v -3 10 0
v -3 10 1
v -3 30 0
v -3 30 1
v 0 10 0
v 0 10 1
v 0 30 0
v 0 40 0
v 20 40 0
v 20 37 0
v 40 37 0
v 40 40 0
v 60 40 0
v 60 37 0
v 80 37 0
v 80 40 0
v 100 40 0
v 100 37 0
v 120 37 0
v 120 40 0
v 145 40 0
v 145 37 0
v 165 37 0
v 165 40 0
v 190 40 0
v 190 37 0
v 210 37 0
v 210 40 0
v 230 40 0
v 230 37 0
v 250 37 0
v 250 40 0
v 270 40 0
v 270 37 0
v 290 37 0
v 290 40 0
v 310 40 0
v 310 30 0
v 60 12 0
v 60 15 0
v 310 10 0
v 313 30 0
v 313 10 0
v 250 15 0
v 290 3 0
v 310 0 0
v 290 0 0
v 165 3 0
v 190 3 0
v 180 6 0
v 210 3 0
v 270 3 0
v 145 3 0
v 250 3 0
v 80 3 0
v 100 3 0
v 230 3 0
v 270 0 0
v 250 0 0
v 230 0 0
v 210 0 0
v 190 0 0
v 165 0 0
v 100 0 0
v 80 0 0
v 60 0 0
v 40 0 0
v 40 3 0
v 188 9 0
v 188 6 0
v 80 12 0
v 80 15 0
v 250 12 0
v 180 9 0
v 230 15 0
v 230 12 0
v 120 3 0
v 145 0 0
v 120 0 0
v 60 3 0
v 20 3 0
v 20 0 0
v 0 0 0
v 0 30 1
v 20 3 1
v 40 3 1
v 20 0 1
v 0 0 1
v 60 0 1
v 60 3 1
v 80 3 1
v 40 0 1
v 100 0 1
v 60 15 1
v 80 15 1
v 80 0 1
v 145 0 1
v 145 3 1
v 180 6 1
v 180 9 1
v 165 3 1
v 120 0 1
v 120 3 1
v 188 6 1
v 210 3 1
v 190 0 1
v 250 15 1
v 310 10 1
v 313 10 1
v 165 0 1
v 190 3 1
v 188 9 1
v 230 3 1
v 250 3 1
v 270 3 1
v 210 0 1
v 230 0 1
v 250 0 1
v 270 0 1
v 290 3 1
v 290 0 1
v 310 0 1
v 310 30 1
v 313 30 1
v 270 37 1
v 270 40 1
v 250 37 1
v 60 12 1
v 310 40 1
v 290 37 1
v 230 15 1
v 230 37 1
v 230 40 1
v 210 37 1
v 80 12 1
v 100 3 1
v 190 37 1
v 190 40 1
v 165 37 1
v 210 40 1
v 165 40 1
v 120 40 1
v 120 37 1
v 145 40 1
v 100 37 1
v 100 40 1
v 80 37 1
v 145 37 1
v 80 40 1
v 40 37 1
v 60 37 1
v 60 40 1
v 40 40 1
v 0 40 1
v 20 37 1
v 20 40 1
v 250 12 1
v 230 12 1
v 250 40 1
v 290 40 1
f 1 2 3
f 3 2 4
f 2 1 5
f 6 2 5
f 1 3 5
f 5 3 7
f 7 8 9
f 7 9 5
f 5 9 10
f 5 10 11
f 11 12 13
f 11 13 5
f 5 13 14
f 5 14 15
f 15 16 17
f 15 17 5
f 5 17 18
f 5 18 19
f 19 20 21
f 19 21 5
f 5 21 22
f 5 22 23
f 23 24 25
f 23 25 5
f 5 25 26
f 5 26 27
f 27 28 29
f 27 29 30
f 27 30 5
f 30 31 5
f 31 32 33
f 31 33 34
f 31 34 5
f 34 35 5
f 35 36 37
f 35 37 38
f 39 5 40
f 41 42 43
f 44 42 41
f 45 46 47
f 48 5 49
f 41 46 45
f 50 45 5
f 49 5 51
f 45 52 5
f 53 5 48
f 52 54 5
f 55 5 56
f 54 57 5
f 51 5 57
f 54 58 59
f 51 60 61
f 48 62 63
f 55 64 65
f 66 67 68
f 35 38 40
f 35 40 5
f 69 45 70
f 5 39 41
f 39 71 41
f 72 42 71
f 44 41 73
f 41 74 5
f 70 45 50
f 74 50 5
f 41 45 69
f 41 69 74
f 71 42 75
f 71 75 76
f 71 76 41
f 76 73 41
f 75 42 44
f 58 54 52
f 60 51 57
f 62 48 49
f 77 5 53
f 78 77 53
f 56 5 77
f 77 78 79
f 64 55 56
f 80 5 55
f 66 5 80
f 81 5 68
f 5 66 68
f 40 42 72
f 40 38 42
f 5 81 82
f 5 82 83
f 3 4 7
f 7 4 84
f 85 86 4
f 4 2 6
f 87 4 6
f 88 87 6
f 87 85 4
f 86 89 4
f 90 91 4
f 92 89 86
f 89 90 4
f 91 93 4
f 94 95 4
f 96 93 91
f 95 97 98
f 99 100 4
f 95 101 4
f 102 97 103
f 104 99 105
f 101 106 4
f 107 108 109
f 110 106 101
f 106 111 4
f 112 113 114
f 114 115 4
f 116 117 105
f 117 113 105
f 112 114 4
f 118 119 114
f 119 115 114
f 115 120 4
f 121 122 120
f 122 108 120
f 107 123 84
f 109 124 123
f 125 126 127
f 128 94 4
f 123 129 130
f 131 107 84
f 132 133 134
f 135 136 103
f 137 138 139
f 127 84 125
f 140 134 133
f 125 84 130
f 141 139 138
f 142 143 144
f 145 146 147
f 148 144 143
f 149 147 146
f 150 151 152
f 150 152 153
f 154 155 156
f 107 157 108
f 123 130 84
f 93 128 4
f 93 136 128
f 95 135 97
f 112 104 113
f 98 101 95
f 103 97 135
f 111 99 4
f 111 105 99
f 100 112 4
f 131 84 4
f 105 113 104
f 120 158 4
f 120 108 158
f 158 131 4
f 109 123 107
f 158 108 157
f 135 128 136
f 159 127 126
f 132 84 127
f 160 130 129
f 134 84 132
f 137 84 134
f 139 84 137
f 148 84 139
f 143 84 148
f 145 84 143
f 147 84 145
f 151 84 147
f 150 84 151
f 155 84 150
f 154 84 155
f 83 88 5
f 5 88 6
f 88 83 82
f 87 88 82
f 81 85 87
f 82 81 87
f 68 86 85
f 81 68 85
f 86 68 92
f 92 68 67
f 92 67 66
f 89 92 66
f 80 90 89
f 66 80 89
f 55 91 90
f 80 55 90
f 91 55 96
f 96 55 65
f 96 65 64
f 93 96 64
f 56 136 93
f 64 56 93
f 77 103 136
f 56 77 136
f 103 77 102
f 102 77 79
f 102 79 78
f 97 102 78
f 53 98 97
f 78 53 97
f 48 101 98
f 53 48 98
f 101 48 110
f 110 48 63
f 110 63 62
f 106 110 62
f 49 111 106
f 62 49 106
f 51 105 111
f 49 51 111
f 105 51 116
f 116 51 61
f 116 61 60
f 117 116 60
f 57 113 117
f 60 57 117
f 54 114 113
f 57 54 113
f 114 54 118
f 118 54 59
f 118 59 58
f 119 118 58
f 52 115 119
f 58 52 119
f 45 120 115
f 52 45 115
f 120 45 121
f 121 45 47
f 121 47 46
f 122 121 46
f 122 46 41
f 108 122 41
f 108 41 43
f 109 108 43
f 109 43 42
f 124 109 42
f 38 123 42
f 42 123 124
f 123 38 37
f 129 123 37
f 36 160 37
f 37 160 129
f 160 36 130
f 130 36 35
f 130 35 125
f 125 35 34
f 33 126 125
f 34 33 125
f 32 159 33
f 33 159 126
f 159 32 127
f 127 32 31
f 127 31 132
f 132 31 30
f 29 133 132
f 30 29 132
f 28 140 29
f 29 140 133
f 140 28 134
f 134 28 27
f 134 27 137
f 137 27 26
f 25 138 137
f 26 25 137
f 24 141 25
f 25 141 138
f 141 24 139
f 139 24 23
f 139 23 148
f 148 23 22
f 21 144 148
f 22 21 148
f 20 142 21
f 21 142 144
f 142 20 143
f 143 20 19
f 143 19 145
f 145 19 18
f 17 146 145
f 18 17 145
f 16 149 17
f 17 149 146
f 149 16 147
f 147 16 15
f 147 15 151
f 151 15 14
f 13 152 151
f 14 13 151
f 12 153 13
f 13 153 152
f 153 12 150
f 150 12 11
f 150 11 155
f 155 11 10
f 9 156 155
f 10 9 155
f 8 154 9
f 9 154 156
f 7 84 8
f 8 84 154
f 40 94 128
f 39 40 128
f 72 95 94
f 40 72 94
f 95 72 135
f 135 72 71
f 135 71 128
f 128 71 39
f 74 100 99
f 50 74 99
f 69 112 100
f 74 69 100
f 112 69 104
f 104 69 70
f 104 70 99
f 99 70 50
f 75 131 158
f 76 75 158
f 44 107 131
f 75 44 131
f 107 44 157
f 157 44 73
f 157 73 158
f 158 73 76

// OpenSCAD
tapwitdh = 20;
tapheight = 3;
bot = 0;
top = 37;
hule = 8;
module inderside()
{
	difference() 
	{
		cube([310,40,1]);
		union()
		{
			translate([60,bot,-1]) cube([tapwitdh,tapheight,5]);
			translate([230,bot,-1]) cube([tapwitdh,tapheight,5]);
			translate([20,bot,-1]) cube([tapwitdh,tapheight,5]);
			translate([270,bot,-1]) cube([tapwitdh,tapheight,5]);
			translate([100,bot,-1]) cube([tapwitdh,tapheight,5]);
			translate([190,bot,-1]) cube([tapwitdh,tapheight,5]);
			translate([145,bot,-1]) cube([tapwitdh,tapheight,5]);

			translate([20,top,-1]) cube([tapwitdh,tapheight,5]);
			translate([270,top,-1]) cube([tapwitdh,tapheight,5]);
			translate([60,top,-1]) cube([tapwitdh,tapheight,5]);
			translate([230,top,-1]) cube([tapwitdh,tapheight,5]);
			translate([100,top,-1]) cube([tapwitdh,tapheight,5]);
			translate([190,top,-1]) cube([tapwitdh,tapheight,5]);
			translate([145,top,-1]) cube([tapwitdh,tapheight,5]);

			translate([60,12,-1]) cube([tapwitdh,tapheight,5]);
			translate([230,12,-1]) cube([tapwitdh,tapheight,5]);
			translate([180,6,-1]) cube([hule,tapheight,5]);
		}
	}
	translate([-3,10,0])cube([tapheight,tapwitdh,1]);
	translate([310,10,0])cube([tapheight,tapwitdh,1]);
}
inderside();
